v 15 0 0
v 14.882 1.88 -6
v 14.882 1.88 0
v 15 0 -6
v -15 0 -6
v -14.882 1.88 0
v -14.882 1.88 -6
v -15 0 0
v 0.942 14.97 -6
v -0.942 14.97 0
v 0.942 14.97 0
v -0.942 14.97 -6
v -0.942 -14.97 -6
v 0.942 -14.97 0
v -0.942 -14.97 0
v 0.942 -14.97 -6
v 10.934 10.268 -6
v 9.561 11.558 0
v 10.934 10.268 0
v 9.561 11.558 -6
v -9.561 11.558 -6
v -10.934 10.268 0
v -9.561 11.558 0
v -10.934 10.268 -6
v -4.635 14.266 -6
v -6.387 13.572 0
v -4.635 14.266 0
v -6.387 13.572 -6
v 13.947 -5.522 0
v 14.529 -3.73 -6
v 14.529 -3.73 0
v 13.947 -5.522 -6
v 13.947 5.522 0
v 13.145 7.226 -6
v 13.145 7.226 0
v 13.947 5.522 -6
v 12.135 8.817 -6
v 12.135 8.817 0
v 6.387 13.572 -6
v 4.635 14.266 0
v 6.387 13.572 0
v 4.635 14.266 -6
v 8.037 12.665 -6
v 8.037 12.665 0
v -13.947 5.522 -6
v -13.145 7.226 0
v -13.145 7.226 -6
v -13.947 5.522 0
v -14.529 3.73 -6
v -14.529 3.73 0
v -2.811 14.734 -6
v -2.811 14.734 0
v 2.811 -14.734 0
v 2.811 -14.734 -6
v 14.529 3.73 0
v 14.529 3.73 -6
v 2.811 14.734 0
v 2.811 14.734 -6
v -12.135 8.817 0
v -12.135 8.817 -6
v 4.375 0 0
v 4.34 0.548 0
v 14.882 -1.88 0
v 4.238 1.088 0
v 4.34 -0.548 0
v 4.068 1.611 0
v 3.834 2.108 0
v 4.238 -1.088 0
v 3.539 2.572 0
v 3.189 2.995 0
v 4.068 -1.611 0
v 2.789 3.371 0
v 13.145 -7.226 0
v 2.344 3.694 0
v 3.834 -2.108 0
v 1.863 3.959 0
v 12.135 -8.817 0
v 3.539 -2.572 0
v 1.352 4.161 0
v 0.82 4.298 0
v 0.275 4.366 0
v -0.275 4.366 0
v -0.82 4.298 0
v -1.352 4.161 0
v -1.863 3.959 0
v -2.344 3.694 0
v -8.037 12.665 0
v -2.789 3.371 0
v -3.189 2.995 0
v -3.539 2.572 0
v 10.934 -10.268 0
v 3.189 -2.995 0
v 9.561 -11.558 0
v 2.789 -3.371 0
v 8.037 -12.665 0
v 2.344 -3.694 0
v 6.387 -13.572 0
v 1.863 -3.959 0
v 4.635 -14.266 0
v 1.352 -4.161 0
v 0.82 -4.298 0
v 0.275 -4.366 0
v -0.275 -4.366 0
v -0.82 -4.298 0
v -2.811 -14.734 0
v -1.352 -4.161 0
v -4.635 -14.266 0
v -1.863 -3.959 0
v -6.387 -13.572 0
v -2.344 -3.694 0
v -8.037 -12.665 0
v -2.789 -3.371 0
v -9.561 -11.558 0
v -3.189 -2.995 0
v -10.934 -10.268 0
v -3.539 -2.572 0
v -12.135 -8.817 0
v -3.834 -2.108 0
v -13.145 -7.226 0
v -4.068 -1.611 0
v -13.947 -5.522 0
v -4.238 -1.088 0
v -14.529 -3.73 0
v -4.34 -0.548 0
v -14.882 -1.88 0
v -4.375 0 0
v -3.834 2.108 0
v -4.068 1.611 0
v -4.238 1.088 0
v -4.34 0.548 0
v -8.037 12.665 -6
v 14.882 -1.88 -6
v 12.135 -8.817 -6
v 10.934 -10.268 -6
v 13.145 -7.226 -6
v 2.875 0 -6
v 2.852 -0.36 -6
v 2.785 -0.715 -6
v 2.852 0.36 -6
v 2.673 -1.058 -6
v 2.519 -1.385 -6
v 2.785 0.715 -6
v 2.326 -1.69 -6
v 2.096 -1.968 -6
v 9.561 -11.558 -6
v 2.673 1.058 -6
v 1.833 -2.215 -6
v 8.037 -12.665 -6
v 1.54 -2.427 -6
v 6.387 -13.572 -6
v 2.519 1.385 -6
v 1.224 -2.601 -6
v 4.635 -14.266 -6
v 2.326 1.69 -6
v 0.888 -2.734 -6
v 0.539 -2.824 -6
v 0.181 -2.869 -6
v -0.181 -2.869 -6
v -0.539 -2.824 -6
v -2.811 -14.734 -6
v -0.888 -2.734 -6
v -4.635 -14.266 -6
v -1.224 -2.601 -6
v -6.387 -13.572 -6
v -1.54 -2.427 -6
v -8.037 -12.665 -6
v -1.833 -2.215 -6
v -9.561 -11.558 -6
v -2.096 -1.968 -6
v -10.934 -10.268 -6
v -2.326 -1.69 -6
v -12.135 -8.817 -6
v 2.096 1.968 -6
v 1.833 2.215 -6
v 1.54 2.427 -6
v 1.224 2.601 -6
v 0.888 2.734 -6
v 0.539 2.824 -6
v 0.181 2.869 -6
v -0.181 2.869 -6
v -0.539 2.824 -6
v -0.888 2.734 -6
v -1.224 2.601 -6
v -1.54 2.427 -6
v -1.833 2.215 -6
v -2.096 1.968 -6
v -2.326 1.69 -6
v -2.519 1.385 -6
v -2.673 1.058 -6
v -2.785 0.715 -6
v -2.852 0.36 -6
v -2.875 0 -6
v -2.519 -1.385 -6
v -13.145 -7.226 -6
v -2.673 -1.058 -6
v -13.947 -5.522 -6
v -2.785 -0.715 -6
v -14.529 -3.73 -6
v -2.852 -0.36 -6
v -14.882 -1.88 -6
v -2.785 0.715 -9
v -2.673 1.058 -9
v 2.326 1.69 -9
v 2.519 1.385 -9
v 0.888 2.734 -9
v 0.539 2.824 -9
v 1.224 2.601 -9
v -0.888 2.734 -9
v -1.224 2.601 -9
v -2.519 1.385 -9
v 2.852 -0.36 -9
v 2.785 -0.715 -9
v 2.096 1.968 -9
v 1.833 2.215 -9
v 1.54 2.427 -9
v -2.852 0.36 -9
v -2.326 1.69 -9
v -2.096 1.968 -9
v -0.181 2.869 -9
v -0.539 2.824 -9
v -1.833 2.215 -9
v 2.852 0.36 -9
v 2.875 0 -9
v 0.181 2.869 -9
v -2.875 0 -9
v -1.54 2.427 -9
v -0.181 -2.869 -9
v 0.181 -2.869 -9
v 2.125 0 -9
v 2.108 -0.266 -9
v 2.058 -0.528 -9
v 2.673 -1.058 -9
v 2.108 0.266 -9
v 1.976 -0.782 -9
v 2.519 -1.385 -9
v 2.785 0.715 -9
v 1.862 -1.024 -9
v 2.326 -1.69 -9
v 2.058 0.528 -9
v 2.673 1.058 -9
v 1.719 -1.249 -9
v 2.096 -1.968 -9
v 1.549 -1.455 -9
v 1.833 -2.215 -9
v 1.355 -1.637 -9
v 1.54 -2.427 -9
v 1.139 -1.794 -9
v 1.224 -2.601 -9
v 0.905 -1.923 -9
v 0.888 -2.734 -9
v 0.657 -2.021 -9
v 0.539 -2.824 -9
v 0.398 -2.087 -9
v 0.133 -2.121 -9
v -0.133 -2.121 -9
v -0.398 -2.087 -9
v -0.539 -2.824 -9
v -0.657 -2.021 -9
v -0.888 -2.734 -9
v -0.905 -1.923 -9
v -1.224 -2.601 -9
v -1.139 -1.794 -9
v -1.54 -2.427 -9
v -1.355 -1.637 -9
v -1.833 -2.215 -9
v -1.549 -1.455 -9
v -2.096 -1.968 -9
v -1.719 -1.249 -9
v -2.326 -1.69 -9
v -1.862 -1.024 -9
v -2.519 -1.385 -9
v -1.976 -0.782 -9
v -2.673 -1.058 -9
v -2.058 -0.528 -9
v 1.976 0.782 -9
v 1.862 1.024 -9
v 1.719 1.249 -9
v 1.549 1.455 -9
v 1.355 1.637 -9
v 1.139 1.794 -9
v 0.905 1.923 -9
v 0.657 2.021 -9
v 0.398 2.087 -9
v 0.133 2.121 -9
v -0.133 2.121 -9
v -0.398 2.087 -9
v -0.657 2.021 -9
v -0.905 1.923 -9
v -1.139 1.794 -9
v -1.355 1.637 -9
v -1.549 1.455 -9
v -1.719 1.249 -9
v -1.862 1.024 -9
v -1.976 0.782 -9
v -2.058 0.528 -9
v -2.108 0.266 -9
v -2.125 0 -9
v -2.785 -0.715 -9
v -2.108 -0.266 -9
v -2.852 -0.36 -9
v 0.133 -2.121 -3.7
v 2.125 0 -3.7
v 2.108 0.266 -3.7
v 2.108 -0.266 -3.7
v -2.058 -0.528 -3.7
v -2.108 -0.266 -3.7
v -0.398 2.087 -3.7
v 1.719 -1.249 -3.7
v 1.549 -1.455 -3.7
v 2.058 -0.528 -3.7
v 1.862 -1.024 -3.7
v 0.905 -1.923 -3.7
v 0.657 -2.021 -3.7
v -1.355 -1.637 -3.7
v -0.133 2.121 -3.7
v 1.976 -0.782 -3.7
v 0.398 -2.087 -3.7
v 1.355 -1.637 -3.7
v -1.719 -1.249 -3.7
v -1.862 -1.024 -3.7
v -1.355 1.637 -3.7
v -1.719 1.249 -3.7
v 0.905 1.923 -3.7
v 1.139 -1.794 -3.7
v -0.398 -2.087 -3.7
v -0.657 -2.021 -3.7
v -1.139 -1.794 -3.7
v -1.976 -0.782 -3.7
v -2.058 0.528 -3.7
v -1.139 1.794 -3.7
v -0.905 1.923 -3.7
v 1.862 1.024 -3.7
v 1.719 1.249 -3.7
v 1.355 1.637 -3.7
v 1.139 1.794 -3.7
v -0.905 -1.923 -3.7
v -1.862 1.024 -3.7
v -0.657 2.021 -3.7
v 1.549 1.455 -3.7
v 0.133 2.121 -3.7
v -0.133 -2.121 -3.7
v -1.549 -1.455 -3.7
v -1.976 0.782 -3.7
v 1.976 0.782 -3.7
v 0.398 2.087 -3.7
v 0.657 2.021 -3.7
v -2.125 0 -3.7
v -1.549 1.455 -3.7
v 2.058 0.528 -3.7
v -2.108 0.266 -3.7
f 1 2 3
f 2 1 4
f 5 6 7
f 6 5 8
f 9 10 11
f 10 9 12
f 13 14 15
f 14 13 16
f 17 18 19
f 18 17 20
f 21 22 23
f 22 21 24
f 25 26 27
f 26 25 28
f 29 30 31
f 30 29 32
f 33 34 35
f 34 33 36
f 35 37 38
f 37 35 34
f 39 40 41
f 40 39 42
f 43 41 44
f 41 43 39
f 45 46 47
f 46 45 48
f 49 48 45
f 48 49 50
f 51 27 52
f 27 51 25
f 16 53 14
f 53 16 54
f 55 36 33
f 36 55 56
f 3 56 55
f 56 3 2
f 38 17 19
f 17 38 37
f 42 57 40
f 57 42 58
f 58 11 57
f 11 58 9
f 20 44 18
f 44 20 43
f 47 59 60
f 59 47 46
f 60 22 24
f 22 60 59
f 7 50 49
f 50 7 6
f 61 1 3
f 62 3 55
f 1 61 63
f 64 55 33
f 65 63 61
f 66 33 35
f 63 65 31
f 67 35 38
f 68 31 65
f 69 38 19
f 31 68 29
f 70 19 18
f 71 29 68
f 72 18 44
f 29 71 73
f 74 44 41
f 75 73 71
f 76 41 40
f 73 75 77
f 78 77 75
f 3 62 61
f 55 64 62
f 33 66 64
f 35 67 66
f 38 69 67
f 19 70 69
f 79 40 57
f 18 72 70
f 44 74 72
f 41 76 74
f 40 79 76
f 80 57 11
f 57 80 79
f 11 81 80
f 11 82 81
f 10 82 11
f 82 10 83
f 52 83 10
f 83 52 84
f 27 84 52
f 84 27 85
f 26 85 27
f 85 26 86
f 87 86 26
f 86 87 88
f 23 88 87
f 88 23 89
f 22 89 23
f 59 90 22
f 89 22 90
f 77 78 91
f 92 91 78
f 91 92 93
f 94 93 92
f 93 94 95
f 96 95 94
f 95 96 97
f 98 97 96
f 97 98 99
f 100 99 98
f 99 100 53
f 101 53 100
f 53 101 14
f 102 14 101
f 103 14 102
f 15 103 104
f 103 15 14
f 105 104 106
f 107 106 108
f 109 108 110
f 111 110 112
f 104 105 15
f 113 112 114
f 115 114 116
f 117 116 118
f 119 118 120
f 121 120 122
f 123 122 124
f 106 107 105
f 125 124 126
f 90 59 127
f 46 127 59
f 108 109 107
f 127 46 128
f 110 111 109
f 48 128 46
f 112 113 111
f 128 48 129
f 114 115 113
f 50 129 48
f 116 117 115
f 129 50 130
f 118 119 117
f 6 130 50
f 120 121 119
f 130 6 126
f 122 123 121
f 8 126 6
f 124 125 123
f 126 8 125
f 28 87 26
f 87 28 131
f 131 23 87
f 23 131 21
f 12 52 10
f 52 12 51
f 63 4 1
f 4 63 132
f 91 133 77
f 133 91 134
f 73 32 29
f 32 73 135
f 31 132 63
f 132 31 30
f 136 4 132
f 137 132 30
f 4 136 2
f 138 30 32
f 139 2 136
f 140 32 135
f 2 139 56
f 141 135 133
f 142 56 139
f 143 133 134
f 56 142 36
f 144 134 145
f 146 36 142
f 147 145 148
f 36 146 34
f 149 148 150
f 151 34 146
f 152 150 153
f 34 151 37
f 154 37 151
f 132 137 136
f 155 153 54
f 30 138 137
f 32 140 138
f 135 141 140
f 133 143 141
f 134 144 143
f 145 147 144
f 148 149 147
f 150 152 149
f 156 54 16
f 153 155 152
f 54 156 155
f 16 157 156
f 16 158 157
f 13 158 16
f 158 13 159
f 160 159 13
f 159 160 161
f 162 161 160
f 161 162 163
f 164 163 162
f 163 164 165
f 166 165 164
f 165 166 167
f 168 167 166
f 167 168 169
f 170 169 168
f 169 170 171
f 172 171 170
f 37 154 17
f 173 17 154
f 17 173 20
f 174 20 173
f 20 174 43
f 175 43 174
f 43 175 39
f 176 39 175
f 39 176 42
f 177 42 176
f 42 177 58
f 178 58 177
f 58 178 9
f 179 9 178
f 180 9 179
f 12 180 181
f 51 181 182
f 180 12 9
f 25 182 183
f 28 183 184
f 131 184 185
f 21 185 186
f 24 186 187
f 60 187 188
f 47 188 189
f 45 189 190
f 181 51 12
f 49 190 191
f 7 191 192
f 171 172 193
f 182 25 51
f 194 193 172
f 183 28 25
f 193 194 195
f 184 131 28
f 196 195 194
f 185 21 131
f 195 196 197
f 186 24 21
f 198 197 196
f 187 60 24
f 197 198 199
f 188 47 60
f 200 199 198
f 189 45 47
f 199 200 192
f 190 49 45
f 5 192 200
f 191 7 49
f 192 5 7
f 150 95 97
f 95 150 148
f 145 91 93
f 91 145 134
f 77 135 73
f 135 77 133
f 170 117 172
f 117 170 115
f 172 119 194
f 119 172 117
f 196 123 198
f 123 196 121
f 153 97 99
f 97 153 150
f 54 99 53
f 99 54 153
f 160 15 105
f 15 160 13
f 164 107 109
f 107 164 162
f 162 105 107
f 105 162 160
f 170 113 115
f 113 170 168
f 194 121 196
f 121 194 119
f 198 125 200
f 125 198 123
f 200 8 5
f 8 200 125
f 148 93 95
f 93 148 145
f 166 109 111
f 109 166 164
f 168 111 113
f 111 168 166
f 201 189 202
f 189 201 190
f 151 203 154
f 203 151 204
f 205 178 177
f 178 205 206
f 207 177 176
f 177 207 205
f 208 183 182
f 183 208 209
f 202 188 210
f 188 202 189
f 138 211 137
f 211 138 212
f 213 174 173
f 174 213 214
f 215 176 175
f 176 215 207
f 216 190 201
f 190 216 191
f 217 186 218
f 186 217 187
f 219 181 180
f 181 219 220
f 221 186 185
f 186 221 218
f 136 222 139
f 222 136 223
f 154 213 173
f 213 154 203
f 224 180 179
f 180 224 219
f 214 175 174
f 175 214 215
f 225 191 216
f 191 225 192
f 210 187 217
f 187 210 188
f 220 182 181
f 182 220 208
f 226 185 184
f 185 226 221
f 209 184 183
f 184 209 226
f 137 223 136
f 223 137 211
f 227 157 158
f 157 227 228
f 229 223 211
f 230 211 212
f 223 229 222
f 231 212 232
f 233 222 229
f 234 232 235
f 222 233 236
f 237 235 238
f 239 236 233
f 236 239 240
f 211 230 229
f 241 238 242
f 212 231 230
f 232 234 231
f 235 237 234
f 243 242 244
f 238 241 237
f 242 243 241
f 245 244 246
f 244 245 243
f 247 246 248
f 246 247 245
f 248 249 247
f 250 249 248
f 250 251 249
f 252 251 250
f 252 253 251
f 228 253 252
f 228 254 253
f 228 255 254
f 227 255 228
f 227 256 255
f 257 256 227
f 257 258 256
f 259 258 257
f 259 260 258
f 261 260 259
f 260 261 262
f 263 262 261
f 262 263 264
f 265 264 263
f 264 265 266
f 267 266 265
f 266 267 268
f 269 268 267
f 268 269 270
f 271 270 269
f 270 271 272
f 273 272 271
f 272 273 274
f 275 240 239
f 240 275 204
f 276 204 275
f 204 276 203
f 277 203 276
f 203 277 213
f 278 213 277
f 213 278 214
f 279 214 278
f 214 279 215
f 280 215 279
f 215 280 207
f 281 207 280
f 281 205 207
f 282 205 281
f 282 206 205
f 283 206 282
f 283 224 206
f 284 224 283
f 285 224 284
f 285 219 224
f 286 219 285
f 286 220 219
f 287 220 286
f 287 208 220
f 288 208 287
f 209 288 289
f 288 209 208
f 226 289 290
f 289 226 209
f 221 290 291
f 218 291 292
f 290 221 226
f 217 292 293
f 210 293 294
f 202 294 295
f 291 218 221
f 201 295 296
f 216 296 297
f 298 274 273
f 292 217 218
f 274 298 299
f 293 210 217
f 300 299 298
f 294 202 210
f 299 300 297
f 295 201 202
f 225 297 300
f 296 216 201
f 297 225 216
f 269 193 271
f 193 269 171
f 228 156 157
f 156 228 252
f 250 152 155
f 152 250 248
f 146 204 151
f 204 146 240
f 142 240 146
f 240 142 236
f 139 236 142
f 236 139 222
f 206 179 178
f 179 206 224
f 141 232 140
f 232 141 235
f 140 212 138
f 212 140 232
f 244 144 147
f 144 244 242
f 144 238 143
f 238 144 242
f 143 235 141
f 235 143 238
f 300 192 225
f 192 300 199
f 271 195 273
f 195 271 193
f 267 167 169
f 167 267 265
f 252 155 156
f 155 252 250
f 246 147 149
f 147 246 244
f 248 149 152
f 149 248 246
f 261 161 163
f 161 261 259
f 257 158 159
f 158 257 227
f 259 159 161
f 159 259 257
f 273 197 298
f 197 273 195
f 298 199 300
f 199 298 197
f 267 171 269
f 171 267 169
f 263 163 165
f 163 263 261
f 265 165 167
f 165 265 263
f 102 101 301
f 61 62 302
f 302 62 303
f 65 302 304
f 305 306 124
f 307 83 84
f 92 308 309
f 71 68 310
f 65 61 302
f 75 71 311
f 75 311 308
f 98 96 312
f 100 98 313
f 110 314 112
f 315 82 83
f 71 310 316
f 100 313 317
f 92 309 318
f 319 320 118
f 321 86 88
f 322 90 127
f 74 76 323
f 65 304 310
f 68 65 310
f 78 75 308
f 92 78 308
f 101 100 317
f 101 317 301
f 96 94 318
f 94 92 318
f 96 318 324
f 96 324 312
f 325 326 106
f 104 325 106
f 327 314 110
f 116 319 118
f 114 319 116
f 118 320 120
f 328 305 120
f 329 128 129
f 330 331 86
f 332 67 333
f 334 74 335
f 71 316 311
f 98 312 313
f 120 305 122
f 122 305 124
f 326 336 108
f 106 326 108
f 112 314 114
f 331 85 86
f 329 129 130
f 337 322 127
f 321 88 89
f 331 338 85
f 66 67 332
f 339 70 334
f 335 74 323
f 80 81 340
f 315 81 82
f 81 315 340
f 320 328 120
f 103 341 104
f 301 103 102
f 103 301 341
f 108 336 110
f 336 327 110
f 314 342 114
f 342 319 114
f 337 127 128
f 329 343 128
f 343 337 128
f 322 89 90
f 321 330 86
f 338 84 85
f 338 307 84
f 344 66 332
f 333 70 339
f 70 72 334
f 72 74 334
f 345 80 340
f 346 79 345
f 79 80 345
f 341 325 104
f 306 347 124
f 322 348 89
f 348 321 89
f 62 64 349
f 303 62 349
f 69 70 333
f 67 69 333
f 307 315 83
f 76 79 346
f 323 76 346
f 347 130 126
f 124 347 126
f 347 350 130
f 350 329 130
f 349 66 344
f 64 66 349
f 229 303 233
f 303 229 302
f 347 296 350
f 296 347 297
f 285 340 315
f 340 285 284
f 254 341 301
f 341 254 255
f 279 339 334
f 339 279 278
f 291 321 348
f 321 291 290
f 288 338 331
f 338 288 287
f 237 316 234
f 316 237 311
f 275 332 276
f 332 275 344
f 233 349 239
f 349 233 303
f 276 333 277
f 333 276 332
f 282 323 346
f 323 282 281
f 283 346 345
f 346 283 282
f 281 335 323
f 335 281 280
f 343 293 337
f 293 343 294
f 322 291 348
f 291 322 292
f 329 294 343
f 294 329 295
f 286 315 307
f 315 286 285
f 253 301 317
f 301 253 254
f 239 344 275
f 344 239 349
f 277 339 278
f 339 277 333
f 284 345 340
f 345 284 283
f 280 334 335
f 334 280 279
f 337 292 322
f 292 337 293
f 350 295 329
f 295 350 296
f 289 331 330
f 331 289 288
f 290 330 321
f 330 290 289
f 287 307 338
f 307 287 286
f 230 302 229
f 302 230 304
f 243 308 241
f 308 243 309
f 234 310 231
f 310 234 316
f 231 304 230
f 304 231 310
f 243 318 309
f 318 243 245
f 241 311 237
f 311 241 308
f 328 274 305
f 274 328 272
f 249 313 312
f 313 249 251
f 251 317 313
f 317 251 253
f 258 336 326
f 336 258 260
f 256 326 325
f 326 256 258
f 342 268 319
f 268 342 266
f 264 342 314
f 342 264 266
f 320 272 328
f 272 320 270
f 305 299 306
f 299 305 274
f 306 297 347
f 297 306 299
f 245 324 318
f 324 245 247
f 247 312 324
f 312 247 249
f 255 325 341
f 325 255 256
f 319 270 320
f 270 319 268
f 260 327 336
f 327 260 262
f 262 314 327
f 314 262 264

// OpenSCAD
$fn = 50;


difference() {
	union() {
		translate(v = [0, 0, -6.0000000000]) {
			cylinder(h = 6, r = 15.0000000000);
		}
		translate(v = [0, 0, -9.0000000000]) {
			cylinder(h = 9, r = 2.8750000000);
		}
	}
	union() {
		translate(v = [0, 0, 0]) {
			rotate(a = [0, 0, 0]) {
				difference() {
					union() {
						translate(v = [0, 0, -9.0000000000]) {
							cylinder(h = 9, r = 2.0000000000);
						}
						translate(v = [0, 0, -3.7000000000]) {
							cylinder(h = 3.7000000000, r1 = 2.1250000000, r2 = 4.3750000000);
						}
						translate(v = [0, 0, -9.0000000000]) {
							cylinder(h = 9, r = 2.1250000000);
						}
						translate(v = [0, 0, -9.0000000000]) {
							cylinder(h = 9, r = 2.0000000000);
						}
					}
					union();
				}
			}
		}
	}
}
